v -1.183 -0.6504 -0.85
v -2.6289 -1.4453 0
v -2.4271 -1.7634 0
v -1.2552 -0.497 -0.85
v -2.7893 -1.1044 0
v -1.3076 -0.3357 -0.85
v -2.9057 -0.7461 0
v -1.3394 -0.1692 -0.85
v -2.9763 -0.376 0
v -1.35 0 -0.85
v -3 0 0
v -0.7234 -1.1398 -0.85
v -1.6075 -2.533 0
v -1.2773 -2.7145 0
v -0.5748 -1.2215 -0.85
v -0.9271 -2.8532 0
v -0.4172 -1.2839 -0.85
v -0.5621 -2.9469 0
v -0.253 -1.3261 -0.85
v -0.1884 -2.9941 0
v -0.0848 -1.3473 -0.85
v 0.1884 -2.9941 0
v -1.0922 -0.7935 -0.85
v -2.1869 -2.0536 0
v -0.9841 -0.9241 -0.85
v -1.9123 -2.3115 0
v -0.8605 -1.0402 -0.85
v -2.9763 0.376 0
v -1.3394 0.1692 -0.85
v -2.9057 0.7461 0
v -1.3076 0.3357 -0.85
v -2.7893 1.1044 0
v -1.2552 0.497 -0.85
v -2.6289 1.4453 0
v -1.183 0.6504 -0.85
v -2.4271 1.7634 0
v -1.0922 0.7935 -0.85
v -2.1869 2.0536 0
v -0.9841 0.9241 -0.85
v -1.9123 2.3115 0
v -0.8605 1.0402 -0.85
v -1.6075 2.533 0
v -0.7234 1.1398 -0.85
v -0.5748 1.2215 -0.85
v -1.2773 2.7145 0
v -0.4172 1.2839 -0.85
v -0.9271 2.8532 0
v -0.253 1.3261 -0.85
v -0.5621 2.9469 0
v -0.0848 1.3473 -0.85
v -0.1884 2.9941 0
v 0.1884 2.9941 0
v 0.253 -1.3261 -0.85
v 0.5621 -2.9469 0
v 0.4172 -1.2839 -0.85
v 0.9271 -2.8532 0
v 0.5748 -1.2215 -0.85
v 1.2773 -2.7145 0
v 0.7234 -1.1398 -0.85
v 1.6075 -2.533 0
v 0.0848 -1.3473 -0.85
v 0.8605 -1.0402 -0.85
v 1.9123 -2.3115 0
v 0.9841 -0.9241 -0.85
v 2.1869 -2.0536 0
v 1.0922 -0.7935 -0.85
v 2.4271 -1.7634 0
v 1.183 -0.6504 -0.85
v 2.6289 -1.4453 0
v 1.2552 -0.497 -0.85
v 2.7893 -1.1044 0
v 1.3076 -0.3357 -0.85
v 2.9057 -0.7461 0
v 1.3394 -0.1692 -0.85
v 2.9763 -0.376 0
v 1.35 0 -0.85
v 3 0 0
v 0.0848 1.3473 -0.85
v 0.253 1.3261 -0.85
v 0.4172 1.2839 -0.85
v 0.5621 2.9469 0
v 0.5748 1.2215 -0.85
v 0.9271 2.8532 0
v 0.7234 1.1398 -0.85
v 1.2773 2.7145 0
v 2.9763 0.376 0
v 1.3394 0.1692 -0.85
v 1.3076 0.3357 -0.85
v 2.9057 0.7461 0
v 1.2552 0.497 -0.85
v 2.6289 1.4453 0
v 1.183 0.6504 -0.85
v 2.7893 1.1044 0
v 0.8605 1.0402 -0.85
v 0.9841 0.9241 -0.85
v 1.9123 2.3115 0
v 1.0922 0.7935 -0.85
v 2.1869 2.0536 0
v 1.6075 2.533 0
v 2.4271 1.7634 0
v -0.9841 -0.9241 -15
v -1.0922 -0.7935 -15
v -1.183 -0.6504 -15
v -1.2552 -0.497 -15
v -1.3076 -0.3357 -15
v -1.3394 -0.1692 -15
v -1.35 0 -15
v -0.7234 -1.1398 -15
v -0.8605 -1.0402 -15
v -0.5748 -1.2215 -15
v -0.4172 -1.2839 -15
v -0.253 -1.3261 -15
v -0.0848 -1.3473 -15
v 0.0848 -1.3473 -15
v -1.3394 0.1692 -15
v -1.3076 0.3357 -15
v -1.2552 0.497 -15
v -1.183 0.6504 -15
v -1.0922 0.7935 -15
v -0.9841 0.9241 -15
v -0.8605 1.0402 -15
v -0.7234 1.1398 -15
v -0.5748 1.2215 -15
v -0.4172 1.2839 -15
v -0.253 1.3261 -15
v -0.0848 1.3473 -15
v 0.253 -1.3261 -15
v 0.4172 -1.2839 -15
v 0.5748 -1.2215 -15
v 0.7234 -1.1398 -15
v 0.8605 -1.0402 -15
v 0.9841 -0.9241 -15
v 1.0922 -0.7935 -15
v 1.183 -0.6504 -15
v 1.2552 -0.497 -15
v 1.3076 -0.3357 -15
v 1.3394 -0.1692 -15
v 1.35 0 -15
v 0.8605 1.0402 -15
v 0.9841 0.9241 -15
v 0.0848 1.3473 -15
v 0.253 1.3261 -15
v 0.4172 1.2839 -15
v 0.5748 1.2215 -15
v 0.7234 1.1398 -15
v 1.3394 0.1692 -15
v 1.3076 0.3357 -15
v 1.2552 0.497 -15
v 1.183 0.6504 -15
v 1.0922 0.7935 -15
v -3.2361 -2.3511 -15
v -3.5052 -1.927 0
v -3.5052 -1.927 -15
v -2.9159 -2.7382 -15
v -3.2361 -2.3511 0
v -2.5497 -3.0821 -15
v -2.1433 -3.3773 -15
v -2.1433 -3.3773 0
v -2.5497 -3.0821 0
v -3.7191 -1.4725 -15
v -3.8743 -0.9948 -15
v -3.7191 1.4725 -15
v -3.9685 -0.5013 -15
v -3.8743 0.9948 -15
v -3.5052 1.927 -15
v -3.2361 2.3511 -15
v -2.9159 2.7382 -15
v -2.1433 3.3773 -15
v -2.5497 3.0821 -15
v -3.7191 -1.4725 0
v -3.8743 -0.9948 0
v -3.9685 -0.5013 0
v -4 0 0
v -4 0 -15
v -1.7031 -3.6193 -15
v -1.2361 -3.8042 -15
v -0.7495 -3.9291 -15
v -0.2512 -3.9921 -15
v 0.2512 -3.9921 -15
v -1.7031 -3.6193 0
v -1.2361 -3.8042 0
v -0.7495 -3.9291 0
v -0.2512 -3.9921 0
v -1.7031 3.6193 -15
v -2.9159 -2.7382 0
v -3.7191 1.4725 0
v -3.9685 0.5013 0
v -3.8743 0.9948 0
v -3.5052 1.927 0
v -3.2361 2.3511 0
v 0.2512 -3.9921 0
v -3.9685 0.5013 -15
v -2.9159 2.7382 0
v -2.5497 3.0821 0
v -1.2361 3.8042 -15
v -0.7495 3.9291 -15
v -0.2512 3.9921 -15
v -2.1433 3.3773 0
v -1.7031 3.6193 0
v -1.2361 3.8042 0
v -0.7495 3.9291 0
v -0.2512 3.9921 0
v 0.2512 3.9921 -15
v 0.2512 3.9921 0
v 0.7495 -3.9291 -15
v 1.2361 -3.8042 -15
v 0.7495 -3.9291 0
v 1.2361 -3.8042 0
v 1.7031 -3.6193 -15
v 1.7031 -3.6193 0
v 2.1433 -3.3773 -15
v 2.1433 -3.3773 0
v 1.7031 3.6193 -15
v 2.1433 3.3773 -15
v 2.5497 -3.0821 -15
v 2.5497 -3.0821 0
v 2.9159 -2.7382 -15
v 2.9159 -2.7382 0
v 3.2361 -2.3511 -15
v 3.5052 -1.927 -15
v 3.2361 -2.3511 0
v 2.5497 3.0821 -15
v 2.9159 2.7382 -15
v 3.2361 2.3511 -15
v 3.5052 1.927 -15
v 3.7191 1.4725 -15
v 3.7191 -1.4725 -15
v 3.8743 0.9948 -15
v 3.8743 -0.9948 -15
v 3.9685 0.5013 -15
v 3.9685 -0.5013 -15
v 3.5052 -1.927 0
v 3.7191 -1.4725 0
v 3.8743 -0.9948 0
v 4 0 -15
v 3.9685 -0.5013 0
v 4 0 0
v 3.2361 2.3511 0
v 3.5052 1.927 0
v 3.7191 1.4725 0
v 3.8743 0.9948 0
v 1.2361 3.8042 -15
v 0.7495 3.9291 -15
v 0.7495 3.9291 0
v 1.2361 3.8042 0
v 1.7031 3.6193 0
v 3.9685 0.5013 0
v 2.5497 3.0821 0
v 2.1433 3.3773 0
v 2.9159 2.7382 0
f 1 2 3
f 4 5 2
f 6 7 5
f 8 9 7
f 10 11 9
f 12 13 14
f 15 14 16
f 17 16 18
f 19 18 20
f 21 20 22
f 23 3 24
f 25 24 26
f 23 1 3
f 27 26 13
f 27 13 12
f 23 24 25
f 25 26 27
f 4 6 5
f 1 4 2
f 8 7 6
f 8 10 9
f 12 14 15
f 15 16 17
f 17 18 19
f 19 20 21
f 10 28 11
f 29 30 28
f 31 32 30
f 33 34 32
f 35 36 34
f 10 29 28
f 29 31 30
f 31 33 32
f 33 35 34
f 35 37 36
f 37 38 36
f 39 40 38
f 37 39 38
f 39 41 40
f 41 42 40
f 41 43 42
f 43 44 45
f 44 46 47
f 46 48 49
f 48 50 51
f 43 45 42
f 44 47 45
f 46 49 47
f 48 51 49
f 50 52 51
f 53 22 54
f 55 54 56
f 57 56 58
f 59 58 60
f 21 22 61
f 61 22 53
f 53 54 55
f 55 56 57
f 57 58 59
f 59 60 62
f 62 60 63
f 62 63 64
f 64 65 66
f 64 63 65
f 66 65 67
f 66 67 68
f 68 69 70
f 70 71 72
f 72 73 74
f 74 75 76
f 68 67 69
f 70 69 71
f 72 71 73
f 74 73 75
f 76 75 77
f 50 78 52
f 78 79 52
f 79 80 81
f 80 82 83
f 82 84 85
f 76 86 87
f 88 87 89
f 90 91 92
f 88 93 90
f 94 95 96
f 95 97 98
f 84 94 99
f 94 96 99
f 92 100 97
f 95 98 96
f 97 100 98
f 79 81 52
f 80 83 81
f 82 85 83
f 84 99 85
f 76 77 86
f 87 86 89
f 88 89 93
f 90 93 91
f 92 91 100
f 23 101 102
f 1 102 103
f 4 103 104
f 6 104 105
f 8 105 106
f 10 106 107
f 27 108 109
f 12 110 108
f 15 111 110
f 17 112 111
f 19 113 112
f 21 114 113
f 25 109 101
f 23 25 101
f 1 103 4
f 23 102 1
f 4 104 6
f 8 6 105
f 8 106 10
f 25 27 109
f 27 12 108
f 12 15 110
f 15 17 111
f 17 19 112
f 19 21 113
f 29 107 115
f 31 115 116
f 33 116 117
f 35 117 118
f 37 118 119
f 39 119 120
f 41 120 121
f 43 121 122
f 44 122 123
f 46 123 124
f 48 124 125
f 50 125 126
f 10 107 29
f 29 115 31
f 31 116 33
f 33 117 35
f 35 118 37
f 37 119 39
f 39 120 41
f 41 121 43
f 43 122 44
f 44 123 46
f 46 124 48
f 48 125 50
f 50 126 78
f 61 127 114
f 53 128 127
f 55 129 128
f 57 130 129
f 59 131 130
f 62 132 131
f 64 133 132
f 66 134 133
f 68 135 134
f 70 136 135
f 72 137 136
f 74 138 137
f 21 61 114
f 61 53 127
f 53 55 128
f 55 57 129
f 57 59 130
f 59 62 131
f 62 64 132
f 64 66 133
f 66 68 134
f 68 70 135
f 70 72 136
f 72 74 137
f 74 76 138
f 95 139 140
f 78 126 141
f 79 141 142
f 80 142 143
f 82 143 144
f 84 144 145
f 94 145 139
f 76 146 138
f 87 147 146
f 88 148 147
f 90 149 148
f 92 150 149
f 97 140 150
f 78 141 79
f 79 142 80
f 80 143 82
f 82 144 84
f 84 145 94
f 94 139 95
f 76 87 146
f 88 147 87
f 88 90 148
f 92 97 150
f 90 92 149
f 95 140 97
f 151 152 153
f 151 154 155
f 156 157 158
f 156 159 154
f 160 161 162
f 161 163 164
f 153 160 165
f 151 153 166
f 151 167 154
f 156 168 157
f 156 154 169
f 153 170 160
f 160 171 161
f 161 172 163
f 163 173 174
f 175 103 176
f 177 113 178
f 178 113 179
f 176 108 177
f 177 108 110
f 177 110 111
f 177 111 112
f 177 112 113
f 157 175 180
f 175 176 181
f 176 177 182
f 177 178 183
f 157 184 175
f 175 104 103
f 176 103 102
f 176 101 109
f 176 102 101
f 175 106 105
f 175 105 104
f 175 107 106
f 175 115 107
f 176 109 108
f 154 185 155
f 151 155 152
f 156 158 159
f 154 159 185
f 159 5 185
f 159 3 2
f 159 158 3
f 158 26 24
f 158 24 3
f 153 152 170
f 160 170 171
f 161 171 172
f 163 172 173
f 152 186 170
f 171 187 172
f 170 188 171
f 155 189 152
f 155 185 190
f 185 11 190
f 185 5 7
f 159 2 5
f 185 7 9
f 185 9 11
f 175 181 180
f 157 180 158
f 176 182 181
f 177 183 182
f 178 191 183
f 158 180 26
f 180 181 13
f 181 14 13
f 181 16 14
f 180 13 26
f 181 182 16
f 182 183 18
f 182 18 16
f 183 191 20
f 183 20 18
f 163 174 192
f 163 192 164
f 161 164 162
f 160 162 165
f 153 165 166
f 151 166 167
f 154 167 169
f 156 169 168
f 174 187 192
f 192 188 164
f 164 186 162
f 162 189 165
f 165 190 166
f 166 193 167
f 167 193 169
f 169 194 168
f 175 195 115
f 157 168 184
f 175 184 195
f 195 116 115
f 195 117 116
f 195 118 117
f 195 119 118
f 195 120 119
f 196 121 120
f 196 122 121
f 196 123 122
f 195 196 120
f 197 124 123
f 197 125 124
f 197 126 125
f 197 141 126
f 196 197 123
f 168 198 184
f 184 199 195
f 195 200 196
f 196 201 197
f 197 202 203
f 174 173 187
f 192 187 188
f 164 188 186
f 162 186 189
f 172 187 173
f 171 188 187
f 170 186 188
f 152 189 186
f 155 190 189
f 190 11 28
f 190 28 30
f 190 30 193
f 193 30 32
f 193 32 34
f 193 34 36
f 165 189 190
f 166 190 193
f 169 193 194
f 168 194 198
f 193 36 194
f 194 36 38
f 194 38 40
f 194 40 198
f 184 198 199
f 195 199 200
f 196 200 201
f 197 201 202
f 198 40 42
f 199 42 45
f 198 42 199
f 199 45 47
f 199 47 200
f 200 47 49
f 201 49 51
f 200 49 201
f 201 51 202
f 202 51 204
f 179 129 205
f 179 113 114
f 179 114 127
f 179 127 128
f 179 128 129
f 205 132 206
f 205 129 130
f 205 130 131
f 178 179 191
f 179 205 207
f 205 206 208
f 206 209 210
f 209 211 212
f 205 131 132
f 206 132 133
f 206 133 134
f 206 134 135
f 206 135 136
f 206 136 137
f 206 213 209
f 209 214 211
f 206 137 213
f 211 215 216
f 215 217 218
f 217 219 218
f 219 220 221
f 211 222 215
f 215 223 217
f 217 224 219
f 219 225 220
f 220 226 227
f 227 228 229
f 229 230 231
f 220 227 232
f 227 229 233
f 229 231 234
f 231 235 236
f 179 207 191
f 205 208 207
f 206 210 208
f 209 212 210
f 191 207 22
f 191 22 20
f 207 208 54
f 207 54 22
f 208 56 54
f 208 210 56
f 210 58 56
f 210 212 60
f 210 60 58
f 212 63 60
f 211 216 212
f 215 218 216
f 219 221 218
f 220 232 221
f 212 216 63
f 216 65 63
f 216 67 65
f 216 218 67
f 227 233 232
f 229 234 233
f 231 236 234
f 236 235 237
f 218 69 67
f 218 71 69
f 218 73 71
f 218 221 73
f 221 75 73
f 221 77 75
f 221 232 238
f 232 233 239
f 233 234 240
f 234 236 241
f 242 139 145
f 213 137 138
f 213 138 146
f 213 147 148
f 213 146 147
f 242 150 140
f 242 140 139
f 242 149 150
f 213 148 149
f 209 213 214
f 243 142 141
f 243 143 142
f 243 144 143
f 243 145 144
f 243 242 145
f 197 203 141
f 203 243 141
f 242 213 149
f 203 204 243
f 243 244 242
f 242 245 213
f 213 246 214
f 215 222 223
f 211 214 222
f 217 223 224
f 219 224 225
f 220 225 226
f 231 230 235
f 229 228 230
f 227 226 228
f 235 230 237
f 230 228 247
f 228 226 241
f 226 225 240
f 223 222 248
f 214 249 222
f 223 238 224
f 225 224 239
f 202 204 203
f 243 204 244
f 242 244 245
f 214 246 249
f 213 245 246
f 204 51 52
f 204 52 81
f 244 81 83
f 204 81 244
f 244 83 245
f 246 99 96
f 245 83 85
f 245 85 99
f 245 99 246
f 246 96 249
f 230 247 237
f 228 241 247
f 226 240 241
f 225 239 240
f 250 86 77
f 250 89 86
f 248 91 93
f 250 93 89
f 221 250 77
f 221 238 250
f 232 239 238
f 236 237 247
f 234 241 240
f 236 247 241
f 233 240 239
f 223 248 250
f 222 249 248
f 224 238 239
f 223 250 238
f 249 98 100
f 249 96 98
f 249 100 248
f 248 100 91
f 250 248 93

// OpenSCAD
$fn = 50;

difference() {
	union() {
		translate(v = [0, 0, -15.0]) {
			cylinder(h = 15, r = 4.0);
		}
	}
	union() {
		translate(v = [0, 0, 0]) {
			rotate(a = [0, 0, 0]) {
				difference() {
					union() {
						translate(v = [0, 0, -18.0]) {
							cylinder(h = 18, r = 1.0);
						}
						translate(v = [0, 0, -0.85]) {
							cylinder(h = 0.85, r1 = 1.35, r2 = 3.0);
						}
						translate(v = [0, 0, -18.0]) {
							cylinder(h = 18, r = 1.35);
						}
						translate(v = [0, 0, -18.0]) {
							cylinder(h = 18, r = 1.0);
						}
					}
					union();
				}
			}
		}
	}
}
